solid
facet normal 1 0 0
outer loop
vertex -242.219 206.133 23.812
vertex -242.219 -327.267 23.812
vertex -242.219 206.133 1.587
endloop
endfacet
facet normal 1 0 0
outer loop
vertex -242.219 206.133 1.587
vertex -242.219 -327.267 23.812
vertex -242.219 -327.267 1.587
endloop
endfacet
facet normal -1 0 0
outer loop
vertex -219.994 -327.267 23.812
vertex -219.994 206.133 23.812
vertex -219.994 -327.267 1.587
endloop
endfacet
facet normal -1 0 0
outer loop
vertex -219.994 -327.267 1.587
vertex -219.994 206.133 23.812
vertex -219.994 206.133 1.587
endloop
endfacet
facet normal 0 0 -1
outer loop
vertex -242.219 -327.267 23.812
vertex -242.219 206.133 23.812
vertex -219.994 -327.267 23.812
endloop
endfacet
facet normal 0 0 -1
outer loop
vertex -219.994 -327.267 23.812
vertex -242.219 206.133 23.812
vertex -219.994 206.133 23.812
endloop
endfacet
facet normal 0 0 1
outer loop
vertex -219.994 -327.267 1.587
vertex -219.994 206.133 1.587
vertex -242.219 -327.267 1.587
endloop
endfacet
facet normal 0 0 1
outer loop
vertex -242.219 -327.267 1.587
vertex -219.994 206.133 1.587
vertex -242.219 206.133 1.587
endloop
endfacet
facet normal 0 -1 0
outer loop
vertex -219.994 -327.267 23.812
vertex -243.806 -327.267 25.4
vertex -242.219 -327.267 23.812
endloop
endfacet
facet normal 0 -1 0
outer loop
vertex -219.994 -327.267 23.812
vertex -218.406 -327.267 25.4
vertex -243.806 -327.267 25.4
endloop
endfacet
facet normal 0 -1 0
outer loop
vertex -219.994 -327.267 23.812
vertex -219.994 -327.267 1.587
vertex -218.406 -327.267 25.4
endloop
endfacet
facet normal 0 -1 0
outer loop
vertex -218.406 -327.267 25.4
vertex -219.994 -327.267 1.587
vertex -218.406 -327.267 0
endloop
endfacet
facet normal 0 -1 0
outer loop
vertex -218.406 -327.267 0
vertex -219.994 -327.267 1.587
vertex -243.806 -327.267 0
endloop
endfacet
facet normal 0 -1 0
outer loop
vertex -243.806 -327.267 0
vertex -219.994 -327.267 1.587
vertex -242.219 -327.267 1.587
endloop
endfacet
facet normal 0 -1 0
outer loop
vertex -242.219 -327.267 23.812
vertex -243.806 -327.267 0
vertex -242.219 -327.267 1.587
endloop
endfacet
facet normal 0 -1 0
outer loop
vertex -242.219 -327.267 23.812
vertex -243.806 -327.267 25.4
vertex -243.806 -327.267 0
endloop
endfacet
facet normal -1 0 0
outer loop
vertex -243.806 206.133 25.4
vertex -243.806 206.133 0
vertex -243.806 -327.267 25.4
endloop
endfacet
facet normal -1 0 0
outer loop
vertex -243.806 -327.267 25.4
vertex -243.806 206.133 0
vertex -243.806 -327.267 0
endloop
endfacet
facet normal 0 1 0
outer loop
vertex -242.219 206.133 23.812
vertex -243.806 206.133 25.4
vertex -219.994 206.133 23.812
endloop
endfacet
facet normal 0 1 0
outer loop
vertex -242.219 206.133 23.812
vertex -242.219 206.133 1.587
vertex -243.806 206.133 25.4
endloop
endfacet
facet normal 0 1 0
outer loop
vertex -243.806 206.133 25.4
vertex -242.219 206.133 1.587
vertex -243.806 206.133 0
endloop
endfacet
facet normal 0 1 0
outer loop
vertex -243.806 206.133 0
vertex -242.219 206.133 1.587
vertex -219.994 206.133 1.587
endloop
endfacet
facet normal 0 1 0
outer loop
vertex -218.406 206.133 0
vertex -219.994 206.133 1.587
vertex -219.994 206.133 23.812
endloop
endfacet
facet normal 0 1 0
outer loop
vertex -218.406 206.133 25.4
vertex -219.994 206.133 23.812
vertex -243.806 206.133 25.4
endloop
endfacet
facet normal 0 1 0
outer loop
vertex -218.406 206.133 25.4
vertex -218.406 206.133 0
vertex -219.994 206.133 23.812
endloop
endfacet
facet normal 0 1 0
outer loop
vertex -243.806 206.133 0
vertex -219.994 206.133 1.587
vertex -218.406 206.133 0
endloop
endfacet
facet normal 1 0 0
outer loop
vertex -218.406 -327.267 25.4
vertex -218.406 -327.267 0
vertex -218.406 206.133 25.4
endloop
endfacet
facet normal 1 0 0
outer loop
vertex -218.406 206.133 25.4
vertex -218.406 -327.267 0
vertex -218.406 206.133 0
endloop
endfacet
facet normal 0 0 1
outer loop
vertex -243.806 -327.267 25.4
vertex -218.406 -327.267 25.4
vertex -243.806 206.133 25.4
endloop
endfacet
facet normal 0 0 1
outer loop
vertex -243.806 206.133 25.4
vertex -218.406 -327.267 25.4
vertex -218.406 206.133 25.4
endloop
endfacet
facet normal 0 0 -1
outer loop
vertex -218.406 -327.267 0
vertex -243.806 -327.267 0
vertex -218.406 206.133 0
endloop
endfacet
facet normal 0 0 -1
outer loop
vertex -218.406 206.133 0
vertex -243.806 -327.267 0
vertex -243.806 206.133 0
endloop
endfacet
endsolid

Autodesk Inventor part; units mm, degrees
ref_plane "YZ Plane" through (0, 0, 0) normal (1, 0, 0) x (0, 1, 0)
ref_plane "XZ Plane" through (0, 0, 0) normal (0, 1, 0) x (-1, 0, 0)
ref_plane "XY Plane" through (0, 0, 0) normal (0, 0, 1) x (1, 0, 0)
sketch "Sketch1" plane through (0, 0, 0) normal (0, 0, 1) x (1, 0, 0)
  line L0 (-243.8061, 206.1329) -> (-243.8061, -327.2671)
  line L1 (-243.8061, -327.2671) -> (-218.4061, -327.2671)
  line L2 (-218.4061, -327.2671) -> (-218.4061, 206.1329)
  line L3 (-218.4061, 206.1329) -> (-243.8061, 206.1329)
  point P0 (0, 0)
  dimension "d1" = 533.4
  dimension "d9" = 25.4
extrude "Extrusion1" add sketch "Sketch1" along normal blind 25.4
shell "Shell2" thickness 1.5875 removed faces 2 at (-226.8728, -327.2671, 8.4667) at (-235.3394, 206.1329, 8.4667)
properties part number "Frame_FrontConveyorGuide" material "Aluminum-6061"
